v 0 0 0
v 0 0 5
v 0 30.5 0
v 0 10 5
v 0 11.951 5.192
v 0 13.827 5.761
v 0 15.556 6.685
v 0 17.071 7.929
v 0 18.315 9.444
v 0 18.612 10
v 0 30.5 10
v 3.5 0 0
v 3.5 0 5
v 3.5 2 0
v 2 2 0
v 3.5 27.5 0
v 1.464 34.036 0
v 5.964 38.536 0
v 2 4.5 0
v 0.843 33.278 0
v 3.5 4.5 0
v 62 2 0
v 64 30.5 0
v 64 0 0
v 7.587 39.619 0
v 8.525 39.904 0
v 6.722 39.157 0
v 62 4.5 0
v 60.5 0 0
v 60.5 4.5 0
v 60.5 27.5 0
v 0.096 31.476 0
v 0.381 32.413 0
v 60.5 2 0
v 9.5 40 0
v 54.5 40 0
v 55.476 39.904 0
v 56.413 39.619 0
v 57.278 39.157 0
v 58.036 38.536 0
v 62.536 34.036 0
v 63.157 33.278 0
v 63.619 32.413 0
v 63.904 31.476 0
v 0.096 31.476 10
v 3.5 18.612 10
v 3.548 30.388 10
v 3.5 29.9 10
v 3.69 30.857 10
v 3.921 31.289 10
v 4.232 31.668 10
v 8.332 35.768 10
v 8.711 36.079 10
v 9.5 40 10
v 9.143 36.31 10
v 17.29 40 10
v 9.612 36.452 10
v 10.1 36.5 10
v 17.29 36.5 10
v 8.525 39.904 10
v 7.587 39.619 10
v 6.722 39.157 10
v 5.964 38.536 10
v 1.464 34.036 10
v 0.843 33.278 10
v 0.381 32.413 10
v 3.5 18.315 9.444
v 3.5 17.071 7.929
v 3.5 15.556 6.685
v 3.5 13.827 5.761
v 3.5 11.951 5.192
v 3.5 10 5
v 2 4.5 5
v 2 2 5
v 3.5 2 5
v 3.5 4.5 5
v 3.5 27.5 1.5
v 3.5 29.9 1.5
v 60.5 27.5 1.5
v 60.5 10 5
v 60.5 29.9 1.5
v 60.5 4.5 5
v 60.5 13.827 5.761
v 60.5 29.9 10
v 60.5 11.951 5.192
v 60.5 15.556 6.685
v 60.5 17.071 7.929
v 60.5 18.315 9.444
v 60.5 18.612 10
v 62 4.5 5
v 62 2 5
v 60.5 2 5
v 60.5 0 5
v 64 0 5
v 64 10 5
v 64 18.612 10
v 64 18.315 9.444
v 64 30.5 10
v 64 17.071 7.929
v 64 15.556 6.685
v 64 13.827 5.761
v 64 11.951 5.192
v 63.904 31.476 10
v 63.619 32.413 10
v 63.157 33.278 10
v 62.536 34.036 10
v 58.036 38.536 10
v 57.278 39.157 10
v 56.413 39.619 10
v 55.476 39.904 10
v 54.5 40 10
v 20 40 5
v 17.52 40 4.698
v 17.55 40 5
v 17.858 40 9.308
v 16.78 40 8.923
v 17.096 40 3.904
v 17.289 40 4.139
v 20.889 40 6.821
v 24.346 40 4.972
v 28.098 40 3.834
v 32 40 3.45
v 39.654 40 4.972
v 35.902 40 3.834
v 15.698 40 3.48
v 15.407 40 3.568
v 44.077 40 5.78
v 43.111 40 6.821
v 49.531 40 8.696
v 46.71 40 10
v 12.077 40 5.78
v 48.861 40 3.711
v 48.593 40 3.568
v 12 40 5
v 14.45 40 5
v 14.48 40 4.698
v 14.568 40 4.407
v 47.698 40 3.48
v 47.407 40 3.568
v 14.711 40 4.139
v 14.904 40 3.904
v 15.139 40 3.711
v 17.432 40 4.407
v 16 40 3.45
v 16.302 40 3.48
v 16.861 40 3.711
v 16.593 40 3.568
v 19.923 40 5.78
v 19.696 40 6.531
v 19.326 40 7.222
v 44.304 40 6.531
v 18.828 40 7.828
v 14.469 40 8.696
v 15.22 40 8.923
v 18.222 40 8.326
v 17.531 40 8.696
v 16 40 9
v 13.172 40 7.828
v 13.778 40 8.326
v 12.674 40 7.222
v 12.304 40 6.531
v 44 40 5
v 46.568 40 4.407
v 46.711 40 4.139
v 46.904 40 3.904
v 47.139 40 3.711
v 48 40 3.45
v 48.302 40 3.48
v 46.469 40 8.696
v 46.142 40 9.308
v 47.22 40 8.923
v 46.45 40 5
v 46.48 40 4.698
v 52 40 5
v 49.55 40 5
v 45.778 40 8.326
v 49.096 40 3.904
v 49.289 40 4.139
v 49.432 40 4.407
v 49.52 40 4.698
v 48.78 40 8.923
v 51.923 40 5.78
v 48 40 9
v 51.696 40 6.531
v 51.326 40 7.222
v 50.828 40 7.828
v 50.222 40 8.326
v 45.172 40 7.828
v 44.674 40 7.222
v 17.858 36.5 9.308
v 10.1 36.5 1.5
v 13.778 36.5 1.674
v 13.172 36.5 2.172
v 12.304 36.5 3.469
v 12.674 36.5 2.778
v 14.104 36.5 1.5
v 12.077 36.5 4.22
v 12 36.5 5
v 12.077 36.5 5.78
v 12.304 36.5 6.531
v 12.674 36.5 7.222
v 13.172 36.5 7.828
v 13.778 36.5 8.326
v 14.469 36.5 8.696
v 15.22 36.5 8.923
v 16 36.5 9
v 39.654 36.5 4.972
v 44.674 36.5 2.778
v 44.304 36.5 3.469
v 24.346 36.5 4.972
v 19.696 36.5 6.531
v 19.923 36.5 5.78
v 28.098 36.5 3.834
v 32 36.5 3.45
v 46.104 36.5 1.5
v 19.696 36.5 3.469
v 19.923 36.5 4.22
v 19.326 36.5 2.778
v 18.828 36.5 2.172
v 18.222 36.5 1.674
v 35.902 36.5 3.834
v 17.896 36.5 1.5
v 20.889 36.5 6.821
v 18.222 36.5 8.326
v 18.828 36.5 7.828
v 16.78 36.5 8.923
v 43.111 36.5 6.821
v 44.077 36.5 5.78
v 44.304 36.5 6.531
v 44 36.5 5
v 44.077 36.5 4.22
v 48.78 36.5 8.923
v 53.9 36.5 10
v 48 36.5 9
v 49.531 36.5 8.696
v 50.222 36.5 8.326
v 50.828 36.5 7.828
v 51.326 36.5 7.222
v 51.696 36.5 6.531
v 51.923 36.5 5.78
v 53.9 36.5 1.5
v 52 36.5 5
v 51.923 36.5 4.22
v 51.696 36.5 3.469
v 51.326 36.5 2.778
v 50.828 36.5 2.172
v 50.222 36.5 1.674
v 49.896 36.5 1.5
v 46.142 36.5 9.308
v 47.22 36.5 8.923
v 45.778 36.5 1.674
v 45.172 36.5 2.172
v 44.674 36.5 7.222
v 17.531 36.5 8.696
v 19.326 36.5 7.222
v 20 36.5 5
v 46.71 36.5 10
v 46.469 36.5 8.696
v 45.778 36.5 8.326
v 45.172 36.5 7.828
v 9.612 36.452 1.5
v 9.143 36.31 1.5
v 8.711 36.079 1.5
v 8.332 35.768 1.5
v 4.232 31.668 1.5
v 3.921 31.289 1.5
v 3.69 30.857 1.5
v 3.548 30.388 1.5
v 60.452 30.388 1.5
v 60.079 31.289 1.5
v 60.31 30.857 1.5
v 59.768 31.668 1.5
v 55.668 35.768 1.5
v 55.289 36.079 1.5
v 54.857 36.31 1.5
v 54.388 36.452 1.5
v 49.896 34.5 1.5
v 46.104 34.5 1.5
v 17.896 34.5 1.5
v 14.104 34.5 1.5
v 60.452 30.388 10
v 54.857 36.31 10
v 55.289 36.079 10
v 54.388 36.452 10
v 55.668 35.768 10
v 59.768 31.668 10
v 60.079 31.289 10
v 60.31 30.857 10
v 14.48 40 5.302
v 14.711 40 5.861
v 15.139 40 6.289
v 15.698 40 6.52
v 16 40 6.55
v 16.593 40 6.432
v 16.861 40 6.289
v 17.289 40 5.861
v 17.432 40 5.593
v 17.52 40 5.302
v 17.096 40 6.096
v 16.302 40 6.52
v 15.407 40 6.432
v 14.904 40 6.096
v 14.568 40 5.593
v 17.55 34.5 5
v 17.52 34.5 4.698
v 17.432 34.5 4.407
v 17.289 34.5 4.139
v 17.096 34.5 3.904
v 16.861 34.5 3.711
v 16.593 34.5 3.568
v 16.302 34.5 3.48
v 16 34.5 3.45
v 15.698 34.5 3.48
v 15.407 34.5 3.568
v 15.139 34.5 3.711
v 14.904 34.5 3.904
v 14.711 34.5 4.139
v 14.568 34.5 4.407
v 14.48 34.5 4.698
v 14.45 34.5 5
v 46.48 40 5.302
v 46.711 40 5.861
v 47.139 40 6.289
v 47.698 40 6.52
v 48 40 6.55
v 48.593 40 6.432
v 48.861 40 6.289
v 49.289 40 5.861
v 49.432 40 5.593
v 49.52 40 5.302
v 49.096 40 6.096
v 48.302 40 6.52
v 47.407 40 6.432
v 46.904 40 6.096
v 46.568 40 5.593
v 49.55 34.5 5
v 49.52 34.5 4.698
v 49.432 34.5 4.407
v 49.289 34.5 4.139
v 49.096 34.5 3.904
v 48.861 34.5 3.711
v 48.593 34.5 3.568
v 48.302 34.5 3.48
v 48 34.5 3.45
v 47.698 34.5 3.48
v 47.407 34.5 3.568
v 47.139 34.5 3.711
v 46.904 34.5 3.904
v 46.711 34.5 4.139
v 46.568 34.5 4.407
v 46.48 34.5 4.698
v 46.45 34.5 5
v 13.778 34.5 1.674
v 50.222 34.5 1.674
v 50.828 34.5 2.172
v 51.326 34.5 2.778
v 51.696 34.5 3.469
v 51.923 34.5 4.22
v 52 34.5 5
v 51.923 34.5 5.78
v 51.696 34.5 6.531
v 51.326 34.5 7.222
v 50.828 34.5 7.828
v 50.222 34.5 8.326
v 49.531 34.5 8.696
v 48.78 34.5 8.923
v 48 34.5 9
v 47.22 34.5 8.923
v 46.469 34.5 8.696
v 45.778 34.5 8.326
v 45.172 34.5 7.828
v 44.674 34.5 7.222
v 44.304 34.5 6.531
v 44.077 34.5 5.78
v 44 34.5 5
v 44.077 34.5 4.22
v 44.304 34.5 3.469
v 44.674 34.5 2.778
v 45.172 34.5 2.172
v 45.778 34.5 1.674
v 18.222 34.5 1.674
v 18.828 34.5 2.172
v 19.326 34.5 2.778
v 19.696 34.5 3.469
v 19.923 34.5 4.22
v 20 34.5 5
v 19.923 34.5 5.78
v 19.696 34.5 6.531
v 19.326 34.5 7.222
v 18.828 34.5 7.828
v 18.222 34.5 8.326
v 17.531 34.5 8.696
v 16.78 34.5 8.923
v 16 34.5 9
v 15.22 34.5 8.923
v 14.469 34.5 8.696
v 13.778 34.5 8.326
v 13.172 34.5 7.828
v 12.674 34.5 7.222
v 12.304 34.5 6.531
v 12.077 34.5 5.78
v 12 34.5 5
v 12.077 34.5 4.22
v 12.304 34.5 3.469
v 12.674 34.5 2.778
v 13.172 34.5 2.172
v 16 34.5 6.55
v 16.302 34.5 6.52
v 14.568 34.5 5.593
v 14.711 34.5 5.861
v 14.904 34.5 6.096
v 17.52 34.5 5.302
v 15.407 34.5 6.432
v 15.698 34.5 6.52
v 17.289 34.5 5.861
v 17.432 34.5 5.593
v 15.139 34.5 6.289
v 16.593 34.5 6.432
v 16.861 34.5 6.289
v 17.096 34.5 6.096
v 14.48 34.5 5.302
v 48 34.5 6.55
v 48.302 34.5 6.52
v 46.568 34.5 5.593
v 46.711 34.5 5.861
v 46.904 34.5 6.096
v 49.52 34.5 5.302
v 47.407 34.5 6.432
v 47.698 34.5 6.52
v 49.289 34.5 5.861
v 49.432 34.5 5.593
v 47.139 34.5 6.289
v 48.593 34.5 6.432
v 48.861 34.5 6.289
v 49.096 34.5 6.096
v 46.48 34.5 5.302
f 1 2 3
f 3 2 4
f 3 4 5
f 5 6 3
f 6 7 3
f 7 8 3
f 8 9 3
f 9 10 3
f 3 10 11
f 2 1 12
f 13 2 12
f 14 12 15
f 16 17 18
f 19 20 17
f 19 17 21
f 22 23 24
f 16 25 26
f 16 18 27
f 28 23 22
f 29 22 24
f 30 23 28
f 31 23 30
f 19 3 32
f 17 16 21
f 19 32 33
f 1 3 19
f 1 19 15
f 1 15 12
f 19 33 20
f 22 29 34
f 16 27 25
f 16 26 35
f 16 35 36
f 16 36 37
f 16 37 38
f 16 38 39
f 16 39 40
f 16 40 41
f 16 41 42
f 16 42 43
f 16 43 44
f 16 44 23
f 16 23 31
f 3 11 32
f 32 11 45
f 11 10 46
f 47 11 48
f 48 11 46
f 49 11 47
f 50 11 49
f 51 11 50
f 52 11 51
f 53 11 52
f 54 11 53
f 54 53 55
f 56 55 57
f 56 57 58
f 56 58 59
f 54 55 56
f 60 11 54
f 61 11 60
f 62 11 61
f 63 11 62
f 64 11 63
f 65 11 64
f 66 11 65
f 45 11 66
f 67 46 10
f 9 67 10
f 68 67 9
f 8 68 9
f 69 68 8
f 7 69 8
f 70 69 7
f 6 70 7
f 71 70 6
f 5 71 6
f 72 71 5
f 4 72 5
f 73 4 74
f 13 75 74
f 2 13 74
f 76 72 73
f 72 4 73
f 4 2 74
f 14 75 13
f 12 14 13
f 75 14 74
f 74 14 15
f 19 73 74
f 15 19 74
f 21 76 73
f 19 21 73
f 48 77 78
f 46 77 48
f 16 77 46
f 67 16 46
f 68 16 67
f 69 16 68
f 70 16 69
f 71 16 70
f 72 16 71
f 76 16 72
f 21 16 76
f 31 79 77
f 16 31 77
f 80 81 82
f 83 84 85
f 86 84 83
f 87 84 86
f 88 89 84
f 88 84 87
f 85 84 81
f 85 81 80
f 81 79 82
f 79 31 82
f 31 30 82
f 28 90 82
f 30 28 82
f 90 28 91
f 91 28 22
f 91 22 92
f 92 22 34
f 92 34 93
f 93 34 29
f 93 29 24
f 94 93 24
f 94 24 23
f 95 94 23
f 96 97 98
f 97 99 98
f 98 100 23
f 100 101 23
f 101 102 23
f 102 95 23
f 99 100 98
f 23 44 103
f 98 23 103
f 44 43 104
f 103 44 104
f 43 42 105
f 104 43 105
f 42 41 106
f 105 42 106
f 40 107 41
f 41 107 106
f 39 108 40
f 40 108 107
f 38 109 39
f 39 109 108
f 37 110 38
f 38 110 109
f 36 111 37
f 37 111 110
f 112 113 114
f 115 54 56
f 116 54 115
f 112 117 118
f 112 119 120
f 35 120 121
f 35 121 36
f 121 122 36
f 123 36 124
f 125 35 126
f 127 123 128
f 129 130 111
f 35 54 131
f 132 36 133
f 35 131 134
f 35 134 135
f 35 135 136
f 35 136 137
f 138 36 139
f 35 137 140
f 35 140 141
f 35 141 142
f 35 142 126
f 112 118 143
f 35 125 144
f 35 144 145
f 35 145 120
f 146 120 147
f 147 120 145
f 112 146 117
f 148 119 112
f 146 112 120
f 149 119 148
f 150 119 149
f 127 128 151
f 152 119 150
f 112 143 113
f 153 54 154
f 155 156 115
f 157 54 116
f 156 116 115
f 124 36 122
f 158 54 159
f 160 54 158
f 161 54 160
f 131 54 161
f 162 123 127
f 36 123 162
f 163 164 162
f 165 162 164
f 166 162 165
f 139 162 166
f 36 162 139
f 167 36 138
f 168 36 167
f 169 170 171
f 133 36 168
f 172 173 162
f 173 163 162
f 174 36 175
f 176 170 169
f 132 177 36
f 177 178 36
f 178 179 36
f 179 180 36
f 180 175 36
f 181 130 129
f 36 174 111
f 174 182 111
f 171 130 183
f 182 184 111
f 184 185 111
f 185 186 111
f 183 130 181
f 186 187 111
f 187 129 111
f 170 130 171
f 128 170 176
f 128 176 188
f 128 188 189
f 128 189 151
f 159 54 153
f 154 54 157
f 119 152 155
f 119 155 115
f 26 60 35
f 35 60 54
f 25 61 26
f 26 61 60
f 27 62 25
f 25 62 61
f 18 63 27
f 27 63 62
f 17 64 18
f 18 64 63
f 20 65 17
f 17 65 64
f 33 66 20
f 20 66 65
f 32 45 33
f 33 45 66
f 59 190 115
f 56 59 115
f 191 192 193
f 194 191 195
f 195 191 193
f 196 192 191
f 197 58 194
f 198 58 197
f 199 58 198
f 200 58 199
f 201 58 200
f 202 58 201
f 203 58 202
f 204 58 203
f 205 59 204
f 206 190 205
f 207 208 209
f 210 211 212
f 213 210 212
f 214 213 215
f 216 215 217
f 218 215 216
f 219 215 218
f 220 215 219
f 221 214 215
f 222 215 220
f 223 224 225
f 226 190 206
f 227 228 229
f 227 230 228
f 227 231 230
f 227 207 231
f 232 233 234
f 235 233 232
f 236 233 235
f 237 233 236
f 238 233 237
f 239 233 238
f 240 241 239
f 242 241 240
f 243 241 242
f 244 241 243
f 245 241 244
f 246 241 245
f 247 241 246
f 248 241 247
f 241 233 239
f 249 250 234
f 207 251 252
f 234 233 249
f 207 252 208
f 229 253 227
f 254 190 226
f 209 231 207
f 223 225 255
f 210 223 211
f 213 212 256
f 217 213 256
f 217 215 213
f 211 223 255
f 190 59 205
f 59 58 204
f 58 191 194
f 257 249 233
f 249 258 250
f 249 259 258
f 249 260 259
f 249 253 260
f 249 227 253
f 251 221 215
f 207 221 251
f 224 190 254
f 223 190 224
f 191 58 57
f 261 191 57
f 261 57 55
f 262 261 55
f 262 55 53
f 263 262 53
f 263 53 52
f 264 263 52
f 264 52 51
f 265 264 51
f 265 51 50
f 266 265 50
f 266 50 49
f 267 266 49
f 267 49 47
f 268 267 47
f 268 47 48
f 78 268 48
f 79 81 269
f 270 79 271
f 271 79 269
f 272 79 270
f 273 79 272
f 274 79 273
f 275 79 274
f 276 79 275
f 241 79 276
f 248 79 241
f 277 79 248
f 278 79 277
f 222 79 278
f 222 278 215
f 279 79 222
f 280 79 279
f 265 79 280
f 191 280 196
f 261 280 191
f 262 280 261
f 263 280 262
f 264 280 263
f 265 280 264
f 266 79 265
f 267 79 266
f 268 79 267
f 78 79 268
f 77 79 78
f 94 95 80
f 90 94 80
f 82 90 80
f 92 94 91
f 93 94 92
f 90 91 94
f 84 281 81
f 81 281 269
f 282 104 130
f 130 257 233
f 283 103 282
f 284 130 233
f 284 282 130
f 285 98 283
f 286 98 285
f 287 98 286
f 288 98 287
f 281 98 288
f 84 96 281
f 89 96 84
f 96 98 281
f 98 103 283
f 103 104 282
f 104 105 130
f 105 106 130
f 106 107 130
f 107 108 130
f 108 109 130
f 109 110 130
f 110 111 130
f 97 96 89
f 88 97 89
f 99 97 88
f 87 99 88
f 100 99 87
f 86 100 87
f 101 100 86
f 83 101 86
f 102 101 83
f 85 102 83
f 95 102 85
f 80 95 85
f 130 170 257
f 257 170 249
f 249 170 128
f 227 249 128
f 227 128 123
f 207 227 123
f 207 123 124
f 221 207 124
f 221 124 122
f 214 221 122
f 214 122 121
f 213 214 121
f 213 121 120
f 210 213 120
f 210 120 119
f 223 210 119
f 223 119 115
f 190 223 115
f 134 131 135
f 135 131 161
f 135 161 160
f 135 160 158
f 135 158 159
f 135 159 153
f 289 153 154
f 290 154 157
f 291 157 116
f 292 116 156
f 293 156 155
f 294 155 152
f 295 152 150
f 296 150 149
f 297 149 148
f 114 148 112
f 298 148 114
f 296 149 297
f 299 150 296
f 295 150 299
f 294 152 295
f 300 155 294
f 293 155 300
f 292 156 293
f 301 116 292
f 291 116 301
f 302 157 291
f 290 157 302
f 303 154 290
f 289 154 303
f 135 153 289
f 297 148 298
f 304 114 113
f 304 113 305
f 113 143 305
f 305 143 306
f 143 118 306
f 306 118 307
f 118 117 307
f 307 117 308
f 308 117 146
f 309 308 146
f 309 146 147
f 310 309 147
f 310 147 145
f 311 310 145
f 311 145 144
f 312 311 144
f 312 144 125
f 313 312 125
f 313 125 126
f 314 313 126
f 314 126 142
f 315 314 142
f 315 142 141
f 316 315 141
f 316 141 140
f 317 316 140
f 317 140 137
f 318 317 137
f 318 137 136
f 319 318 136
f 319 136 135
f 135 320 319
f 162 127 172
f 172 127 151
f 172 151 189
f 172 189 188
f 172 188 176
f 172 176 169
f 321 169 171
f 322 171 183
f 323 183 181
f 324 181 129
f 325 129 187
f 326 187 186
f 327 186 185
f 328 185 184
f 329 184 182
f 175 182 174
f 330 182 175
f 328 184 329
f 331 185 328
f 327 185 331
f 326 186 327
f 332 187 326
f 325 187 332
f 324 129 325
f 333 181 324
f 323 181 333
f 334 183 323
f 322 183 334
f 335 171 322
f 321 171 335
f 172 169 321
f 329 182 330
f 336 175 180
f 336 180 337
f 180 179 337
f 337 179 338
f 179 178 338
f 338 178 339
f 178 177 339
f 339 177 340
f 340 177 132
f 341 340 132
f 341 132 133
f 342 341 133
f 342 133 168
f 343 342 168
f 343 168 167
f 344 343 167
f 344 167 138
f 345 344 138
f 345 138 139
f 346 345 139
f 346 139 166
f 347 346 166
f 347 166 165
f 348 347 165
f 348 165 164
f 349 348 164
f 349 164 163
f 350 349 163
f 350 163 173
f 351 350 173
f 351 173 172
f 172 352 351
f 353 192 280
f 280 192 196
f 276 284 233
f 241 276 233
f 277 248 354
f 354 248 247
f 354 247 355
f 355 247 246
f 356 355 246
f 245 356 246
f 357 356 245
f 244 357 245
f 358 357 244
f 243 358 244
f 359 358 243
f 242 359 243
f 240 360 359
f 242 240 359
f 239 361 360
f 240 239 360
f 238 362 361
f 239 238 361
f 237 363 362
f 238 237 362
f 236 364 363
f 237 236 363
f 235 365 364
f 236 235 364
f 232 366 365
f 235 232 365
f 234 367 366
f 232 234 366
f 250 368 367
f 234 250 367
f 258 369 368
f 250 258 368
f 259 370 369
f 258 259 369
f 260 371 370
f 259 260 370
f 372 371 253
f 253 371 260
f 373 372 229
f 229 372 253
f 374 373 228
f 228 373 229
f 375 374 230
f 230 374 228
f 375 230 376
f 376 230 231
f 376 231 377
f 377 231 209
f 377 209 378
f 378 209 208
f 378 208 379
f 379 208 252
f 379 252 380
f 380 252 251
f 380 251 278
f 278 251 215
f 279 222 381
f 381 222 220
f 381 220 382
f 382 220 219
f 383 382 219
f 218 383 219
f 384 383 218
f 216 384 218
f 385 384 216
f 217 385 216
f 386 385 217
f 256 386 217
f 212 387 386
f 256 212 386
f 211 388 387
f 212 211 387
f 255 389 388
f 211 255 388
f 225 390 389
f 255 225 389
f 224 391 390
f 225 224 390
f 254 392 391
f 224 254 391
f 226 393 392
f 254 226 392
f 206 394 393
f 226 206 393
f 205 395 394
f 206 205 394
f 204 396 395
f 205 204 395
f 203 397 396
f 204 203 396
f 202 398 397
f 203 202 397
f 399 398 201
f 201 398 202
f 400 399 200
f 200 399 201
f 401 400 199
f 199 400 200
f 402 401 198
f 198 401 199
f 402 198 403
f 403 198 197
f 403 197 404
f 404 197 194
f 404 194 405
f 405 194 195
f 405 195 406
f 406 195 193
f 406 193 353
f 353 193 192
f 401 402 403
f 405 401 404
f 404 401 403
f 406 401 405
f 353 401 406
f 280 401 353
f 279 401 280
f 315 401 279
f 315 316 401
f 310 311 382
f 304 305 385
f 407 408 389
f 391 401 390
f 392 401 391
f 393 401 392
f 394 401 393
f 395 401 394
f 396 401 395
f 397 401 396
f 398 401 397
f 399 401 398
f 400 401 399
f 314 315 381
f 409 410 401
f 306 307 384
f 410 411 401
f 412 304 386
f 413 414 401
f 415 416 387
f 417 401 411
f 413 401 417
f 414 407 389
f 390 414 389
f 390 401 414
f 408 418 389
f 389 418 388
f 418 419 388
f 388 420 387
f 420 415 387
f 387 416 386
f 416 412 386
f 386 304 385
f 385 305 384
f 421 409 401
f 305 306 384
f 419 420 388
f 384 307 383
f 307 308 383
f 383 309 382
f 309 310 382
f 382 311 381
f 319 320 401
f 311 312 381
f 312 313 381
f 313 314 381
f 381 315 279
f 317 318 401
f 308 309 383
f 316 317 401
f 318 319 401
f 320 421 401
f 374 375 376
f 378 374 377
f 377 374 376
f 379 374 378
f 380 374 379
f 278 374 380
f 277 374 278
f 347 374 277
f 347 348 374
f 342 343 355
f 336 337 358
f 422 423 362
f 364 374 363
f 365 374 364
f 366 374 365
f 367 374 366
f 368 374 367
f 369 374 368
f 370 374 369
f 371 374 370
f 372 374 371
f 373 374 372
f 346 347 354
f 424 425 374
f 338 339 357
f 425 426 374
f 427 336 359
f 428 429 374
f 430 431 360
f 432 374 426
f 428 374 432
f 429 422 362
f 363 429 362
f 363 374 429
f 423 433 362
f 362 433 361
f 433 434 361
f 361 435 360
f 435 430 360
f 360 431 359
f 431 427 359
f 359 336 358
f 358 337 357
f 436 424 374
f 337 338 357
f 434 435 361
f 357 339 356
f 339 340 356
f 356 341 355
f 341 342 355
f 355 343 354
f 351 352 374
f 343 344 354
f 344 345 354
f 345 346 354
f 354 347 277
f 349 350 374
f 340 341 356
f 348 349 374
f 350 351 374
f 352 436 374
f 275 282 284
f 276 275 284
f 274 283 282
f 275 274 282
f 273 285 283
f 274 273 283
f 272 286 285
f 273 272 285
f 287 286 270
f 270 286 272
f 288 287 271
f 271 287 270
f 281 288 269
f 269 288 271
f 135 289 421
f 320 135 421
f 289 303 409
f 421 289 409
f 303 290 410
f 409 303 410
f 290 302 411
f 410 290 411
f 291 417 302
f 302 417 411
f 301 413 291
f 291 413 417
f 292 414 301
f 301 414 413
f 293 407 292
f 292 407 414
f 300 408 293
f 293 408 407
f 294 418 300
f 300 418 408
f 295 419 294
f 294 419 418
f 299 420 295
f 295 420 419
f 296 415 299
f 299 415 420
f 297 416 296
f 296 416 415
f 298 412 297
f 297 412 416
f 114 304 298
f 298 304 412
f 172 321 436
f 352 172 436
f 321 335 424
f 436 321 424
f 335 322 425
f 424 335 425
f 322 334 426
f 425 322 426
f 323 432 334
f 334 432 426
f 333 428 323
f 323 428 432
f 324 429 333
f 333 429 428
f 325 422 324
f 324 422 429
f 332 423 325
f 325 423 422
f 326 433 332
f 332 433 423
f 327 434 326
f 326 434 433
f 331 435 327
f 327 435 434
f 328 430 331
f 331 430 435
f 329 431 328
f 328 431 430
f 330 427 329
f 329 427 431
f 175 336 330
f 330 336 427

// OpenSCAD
// RAMPS Fan Mount
// Licence: CC BY-SA 3.0, http://creativecommons.org/licenses/by-sa/3.0/
// Author: Dominik Scholz <schlotzz@schlotzz.com> and contributors
// visit: http://www.schlotzz.com


module ramps_fan_mount_cutoff_cube(width, height, depth, cutoff = 5, radius = 5)
{
	union()
	{
		cube([width, height - cutoff - radius, depth]);

		hull()
		{
			for (x = [radius, width - radius])
				translate([x, height - cutoff - radius, 0])
					cylinder(r = radius, h = depth);
	
			for (x = [radius + cutoff, width - radius - cutoff])
				translate([x, height - radius, 0])
					cylinder(r = radius, h = depth);
		}
	}
}


module ramps_fan_mount(width = 64, height = 40, depth = 10, fanDia = 40, fanHoleDia = 3.1, fanHoleDist = 32, grooveDepth = 1.5, grooveHeight = 2.5, thickness = 3.5, $fn = 16)
{
	difference() 
	{
		union() 
		{
			difference()
			{
				// base corpus
				ramps_fan_mount_cutoff_cube(width, height, depth, cutoff = 4.5, radius = 5);
		
				// hollow, leave side air guide
				translate([thickness, -thickness, 1.5]) {
					ramps_fan_mount_cutoff_cube(width - 2 * thickness, height, depth + 2, cutoff = 	4.1, radius = 2.5);	
				}
		
				// remove unneeded air guide
				translate([thickness, -1, -1])
					cube([width - 2 * thickness, height - thickness - 8, depth + 2]);
		
				// add grooves
				translate([thickness - grooveDepth, 2, -1])
					cube([width - 2 * thickness + grooveDepth * 2, grooveHeight, depth + 2]);

				// fan hole
				translate([width / 2, height + 1, depth / 2 + fanDia / 2 - fanHoleDia / 2])
					rotate([90, 0, 0])
						cylinder(r = fanDia / 2, h = thickness + 2);
		
				// smaller legs
				translate([-1, height / 2 - depth, depth * 1.5])
					rotate([0, 90, 0])
						cylinder(r = depth, h = width + 2);
				translate([-1, -1, depth / 2])
					cube([width + 2, height / 2 - depth + 1, depth / 2 + 1]);
		
			}
		
			// fan screw bosses
			for (x = [(width - fanHoleDist) / 2, (width + fanHoleDist) / 2])
				translate([x, height + 0, depth / 2])
					rotate([90, 0, 0])
						cylinder(r = 8 / 2, h = thickness + 2);
		}
		
				
		// fan mounting holes
		for (x = [(width - fanHoleDist) / 2, (width + fanHoleDist) / 2])
			translate([x, height + 1, depth / 2])
				rotate([90, 0, 0])
					cylinder(r = fanHoleDia / 2, h = thickness + 4);
		

	}
	
}
	
ramps_fan_mount($fn = 32);
